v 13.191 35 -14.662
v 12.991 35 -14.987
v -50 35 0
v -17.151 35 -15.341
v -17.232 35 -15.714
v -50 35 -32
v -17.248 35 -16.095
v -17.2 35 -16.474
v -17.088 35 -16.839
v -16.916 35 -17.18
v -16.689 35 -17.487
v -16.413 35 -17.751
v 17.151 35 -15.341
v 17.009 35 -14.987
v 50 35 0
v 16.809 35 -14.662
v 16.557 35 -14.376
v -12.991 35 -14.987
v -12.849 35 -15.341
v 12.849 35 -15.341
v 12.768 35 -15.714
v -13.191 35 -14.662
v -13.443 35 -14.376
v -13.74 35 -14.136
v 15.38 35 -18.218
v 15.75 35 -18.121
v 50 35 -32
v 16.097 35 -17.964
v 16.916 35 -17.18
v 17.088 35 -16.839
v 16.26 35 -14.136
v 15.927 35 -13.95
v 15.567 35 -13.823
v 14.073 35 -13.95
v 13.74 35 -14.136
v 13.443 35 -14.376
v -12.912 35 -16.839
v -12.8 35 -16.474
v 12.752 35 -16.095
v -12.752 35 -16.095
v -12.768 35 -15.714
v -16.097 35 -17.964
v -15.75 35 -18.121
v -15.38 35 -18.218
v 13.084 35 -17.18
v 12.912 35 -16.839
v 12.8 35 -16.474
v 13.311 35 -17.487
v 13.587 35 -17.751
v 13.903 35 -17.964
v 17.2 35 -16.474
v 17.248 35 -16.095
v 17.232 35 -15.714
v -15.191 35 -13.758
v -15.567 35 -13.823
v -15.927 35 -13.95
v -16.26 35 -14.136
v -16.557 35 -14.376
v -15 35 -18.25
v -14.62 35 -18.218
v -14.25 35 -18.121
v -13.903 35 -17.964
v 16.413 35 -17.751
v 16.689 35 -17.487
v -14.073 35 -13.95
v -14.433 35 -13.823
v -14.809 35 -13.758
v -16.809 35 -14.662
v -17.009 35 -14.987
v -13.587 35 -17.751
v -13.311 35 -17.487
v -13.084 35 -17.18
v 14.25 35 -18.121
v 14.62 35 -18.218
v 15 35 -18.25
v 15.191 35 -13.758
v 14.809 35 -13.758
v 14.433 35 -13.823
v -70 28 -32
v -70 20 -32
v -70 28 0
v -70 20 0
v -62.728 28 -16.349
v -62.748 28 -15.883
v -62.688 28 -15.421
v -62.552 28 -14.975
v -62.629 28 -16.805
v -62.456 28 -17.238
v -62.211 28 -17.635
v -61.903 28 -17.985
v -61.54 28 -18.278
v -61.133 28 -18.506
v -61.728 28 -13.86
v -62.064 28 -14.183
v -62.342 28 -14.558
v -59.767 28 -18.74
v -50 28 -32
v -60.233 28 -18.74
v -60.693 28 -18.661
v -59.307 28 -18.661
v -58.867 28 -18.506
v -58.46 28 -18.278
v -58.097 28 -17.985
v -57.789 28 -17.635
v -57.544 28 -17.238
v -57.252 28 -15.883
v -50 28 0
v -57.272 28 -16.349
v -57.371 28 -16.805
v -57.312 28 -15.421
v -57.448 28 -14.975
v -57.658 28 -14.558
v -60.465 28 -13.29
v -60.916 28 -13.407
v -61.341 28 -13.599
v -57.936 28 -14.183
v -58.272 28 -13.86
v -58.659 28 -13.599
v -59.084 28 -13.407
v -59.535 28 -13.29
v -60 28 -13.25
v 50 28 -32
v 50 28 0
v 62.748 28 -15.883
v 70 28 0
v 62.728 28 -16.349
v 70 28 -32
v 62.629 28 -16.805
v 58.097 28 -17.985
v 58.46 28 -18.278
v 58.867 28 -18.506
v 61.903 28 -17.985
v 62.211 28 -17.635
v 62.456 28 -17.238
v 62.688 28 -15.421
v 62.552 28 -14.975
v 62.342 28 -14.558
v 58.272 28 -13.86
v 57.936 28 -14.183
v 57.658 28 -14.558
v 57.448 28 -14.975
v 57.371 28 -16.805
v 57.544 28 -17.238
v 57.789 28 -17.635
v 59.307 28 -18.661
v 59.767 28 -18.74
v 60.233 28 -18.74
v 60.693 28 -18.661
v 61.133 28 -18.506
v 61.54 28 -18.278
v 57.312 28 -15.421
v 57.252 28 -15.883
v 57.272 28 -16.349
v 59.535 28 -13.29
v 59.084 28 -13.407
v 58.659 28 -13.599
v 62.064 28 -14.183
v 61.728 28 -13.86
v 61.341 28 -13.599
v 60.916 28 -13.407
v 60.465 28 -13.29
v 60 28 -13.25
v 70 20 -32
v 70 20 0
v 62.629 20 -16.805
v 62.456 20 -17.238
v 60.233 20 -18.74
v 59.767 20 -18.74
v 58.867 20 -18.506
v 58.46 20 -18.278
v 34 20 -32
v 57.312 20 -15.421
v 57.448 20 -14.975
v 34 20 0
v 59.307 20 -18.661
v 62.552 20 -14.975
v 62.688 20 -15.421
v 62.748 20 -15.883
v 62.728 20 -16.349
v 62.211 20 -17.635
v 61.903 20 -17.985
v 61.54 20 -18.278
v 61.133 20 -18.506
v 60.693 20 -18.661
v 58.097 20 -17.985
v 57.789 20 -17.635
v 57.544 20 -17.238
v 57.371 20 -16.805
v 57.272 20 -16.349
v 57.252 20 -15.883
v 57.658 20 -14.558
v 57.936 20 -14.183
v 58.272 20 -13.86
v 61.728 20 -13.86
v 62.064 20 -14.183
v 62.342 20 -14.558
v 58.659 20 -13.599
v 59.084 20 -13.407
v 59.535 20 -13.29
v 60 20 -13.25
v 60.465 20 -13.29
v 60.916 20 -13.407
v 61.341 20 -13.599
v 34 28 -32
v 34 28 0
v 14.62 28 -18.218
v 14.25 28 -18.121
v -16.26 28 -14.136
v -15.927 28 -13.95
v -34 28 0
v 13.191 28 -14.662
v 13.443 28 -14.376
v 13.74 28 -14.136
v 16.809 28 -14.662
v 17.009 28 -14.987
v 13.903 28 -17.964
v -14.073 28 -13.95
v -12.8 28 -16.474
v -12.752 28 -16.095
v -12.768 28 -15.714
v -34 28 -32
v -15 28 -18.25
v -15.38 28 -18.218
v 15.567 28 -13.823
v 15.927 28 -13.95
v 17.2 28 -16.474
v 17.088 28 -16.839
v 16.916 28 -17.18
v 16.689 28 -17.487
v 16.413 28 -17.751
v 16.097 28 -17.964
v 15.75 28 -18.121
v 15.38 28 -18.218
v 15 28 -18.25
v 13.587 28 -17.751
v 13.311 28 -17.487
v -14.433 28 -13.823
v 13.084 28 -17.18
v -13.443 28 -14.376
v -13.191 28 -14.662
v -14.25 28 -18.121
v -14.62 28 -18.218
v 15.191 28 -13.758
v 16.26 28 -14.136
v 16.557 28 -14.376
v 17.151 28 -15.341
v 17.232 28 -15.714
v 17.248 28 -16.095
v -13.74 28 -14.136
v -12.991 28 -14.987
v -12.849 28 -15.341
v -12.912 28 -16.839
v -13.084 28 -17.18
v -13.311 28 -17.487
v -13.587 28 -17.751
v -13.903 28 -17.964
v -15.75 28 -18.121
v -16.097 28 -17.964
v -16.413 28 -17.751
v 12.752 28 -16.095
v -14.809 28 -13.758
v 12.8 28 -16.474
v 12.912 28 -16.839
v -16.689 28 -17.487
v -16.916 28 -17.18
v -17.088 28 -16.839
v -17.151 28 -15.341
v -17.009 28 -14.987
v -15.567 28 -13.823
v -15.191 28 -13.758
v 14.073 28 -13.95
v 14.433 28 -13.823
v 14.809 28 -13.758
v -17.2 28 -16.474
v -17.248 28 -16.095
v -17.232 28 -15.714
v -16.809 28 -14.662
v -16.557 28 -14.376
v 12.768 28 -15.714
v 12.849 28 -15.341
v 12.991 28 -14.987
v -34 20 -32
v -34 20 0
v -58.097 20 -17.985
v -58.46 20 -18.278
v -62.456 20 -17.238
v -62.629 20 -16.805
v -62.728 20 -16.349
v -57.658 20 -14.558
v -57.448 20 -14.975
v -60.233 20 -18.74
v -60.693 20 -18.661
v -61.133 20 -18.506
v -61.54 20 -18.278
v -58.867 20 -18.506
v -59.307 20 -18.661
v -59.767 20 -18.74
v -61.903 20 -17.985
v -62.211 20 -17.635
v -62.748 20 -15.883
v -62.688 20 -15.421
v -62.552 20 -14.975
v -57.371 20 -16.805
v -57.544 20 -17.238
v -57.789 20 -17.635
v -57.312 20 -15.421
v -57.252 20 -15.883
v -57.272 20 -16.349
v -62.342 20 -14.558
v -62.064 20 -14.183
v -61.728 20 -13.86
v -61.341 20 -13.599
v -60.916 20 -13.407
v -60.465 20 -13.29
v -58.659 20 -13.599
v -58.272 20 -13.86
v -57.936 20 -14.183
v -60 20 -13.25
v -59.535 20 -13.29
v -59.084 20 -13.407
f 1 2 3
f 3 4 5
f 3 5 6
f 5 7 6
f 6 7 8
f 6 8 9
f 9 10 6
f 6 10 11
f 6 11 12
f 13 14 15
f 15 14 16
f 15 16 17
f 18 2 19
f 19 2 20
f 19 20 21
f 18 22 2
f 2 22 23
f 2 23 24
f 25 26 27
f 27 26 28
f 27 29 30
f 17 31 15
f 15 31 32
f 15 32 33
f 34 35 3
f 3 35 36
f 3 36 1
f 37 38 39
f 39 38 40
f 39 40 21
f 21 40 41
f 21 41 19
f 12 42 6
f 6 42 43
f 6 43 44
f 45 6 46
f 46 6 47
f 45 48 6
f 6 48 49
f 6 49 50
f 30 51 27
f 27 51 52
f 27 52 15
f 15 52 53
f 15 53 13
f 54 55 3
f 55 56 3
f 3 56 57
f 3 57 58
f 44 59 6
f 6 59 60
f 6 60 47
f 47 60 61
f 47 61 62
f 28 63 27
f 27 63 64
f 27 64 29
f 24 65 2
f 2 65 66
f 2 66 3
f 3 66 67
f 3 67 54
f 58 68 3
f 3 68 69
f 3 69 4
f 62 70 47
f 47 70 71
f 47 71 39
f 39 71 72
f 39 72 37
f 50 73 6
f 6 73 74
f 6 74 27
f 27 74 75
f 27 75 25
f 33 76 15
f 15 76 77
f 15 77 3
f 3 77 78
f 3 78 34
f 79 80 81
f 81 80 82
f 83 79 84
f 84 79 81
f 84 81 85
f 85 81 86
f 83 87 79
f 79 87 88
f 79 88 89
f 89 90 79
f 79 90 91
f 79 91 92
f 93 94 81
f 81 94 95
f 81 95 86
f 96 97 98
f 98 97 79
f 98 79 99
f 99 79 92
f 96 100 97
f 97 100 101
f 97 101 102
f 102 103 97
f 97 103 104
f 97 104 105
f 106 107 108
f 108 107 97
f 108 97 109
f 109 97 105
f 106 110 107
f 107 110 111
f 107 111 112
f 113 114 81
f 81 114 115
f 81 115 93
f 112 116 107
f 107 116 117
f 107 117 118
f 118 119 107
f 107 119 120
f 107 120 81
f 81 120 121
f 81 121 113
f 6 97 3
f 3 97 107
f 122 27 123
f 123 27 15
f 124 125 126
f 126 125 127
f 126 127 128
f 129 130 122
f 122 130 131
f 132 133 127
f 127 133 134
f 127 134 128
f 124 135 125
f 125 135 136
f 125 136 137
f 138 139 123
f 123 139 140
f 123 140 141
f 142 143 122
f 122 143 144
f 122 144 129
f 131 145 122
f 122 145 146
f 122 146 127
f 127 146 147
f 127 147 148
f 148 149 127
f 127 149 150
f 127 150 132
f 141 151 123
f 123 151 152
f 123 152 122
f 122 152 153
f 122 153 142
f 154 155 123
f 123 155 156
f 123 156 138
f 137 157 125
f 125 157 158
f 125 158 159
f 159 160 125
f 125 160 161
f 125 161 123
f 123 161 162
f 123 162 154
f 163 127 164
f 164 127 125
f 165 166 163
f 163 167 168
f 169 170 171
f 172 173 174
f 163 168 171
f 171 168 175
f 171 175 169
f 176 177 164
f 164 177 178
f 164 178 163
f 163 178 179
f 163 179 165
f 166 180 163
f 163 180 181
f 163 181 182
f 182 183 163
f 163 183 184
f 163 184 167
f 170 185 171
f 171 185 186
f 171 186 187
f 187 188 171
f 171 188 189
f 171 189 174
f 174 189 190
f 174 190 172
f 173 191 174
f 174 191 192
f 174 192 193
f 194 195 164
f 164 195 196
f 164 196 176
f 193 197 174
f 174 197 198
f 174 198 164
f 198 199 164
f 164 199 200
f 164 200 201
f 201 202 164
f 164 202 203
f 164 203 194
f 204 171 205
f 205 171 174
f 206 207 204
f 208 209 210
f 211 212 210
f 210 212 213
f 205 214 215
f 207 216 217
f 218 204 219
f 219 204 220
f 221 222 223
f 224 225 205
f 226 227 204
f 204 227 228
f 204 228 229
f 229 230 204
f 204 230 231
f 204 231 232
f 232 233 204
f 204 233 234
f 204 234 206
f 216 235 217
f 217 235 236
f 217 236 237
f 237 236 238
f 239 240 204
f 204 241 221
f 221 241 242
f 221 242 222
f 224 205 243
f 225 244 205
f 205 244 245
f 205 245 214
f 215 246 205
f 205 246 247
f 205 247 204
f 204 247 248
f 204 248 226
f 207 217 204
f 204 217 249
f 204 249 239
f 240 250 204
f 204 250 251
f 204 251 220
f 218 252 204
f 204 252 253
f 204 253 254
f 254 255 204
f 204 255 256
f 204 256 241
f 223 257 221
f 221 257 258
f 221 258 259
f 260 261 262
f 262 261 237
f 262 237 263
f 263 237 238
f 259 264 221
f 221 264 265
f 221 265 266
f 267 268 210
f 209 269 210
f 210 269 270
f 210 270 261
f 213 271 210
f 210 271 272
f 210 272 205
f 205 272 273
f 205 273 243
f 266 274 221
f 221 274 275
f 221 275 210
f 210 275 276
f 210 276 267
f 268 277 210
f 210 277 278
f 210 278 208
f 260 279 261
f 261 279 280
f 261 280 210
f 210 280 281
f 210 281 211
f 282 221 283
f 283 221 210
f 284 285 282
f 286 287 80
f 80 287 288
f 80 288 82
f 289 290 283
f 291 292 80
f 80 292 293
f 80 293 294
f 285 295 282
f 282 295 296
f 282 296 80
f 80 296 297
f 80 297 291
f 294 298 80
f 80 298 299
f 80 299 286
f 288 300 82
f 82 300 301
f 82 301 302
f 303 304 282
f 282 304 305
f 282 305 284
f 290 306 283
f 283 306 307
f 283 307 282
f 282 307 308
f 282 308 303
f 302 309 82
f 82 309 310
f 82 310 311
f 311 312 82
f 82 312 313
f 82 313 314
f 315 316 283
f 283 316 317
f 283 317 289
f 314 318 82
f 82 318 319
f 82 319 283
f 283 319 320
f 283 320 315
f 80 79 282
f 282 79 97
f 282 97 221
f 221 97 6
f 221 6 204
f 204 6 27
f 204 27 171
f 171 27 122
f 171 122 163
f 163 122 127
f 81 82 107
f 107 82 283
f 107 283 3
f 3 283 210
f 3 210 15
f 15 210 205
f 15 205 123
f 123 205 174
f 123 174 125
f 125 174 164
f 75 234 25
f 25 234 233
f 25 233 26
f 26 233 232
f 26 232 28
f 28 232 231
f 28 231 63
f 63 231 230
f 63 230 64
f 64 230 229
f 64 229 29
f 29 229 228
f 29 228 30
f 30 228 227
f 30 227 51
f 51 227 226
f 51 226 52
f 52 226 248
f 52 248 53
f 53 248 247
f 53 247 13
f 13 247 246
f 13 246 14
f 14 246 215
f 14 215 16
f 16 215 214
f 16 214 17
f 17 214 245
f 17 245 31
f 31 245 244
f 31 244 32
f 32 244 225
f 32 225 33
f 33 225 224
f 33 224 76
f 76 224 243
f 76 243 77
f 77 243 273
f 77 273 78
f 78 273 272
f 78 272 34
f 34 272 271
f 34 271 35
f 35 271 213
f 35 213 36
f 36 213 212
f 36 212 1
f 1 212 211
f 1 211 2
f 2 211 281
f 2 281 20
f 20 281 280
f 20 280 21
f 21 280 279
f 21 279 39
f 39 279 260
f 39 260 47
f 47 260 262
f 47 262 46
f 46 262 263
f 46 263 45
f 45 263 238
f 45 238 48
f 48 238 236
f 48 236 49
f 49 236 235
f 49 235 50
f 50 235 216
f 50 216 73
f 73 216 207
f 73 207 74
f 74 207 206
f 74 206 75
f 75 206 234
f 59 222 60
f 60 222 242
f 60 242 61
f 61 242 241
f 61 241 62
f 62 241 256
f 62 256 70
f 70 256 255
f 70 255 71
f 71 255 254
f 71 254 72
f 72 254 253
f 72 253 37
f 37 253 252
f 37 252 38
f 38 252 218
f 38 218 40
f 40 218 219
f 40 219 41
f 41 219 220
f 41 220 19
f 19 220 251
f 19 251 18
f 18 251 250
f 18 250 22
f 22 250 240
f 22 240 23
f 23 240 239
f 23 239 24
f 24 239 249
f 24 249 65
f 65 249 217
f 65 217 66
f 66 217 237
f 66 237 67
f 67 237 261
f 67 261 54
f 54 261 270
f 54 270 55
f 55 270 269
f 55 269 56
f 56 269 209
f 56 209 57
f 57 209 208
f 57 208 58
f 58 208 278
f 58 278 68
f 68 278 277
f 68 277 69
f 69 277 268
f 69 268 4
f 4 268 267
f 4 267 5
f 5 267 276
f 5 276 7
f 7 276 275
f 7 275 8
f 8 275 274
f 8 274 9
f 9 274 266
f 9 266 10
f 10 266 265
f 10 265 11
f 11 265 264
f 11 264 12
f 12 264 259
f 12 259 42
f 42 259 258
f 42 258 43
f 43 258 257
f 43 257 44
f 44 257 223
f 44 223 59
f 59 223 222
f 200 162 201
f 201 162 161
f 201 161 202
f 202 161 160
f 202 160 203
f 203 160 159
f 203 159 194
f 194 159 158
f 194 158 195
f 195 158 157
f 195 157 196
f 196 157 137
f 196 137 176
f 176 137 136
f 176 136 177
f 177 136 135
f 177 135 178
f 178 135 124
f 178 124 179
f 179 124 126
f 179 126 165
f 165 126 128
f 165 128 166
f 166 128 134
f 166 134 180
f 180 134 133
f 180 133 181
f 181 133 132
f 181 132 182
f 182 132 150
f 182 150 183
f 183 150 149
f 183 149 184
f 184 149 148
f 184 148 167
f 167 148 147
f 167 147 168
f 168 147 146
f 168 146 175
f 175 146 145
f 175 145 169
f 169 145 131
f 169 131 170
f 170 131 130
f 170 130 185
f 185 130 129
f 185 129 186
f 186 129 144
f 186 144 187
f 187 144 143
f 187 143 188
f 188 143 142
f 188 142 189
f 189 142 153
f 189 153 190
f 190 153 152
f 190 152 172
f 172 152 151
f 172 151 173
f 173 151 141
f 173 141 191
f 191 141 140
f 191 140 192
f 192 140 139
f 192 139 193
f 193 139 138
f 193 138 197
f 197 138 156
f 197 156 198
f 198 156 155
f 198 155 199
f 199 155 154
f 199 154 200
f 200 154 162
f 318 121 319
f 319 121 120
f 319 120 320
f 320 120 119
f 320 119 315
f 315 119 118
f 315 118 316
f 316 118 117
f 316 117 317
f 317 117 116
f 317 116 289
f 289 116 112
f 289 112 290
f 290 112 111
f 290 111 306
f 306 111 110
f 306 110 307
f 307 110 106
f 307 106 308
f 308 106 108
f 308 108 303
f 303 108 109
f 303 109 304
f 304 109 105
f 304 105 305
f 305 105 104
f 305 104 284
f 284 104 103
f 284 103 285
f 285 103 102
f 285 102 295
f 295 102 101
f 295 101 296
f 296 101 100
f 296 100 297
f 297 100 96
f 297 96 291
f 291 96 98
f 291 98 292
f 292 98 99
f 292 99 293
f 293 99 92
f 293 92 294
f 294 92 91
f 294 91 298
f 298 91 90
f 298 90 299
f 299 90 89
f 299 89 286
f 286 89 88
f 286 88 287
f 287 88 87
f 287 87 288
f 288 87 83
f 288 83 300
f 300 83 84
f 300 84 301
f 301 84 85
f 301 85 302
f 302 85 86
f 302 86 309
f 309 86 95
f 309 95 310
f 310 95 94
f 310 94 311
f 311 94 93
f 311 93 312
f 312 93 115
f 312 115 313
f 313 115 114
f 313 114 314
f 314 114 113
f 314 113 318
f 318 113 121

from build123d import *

# Parameters (mm, degrees)
AUFSATZ_LINEAR_AUSTRAGEN1_DEPTH  = 32
F_4_5_4_5_DURCHMESSER_BOHRUNG1_D = 4.5
F_5_5_5_5_DURCHMESSER_BOHRUNG1_D = 5.5


with BuildPart() as part:
    # Skizze1 → Aufsatz-Linear austragen1 (new body)
    with BuildSketch(Plane.XY):
        Polygon((-70, 20), (-34, 20), (-34, 28), (34, 28), (34, 20), (70, 20), (70, 28), (50, 28), (50, 35), (-50, 35), (-50, 28), (-70, 28), align=None)
    extrude(amount=-AUFSATZ_LINEAR_AUSTRAGEN1_DEPTH)

    # Ø4.5 (4.5) Durchmesser Bohrung1 (through all)
    with Locations(Plane(origin=(-15, 28, -16), x_dir=(0, 0, -1), z_dir=(0, -1, 0))):
        with Locations((0, 0), (0, 30)):
            Hole(F_4_5_4_5_DURCHMESSER_BOHRUNG1_D / 2)

    # Ø5.5 (5.5) Durchmesser Bohrung1 (through all)
    with Locations(Plane(origin=(-60, 28, -16), x_dir=(1, 0, 0), z_dir=(0, 1, 0))):
        with Locations((0, 0), (120, 0)):
            Hole(F_5_5_5_5_DURCHMESSER_BOHRUNG1_D / 2)


solid = part.part
